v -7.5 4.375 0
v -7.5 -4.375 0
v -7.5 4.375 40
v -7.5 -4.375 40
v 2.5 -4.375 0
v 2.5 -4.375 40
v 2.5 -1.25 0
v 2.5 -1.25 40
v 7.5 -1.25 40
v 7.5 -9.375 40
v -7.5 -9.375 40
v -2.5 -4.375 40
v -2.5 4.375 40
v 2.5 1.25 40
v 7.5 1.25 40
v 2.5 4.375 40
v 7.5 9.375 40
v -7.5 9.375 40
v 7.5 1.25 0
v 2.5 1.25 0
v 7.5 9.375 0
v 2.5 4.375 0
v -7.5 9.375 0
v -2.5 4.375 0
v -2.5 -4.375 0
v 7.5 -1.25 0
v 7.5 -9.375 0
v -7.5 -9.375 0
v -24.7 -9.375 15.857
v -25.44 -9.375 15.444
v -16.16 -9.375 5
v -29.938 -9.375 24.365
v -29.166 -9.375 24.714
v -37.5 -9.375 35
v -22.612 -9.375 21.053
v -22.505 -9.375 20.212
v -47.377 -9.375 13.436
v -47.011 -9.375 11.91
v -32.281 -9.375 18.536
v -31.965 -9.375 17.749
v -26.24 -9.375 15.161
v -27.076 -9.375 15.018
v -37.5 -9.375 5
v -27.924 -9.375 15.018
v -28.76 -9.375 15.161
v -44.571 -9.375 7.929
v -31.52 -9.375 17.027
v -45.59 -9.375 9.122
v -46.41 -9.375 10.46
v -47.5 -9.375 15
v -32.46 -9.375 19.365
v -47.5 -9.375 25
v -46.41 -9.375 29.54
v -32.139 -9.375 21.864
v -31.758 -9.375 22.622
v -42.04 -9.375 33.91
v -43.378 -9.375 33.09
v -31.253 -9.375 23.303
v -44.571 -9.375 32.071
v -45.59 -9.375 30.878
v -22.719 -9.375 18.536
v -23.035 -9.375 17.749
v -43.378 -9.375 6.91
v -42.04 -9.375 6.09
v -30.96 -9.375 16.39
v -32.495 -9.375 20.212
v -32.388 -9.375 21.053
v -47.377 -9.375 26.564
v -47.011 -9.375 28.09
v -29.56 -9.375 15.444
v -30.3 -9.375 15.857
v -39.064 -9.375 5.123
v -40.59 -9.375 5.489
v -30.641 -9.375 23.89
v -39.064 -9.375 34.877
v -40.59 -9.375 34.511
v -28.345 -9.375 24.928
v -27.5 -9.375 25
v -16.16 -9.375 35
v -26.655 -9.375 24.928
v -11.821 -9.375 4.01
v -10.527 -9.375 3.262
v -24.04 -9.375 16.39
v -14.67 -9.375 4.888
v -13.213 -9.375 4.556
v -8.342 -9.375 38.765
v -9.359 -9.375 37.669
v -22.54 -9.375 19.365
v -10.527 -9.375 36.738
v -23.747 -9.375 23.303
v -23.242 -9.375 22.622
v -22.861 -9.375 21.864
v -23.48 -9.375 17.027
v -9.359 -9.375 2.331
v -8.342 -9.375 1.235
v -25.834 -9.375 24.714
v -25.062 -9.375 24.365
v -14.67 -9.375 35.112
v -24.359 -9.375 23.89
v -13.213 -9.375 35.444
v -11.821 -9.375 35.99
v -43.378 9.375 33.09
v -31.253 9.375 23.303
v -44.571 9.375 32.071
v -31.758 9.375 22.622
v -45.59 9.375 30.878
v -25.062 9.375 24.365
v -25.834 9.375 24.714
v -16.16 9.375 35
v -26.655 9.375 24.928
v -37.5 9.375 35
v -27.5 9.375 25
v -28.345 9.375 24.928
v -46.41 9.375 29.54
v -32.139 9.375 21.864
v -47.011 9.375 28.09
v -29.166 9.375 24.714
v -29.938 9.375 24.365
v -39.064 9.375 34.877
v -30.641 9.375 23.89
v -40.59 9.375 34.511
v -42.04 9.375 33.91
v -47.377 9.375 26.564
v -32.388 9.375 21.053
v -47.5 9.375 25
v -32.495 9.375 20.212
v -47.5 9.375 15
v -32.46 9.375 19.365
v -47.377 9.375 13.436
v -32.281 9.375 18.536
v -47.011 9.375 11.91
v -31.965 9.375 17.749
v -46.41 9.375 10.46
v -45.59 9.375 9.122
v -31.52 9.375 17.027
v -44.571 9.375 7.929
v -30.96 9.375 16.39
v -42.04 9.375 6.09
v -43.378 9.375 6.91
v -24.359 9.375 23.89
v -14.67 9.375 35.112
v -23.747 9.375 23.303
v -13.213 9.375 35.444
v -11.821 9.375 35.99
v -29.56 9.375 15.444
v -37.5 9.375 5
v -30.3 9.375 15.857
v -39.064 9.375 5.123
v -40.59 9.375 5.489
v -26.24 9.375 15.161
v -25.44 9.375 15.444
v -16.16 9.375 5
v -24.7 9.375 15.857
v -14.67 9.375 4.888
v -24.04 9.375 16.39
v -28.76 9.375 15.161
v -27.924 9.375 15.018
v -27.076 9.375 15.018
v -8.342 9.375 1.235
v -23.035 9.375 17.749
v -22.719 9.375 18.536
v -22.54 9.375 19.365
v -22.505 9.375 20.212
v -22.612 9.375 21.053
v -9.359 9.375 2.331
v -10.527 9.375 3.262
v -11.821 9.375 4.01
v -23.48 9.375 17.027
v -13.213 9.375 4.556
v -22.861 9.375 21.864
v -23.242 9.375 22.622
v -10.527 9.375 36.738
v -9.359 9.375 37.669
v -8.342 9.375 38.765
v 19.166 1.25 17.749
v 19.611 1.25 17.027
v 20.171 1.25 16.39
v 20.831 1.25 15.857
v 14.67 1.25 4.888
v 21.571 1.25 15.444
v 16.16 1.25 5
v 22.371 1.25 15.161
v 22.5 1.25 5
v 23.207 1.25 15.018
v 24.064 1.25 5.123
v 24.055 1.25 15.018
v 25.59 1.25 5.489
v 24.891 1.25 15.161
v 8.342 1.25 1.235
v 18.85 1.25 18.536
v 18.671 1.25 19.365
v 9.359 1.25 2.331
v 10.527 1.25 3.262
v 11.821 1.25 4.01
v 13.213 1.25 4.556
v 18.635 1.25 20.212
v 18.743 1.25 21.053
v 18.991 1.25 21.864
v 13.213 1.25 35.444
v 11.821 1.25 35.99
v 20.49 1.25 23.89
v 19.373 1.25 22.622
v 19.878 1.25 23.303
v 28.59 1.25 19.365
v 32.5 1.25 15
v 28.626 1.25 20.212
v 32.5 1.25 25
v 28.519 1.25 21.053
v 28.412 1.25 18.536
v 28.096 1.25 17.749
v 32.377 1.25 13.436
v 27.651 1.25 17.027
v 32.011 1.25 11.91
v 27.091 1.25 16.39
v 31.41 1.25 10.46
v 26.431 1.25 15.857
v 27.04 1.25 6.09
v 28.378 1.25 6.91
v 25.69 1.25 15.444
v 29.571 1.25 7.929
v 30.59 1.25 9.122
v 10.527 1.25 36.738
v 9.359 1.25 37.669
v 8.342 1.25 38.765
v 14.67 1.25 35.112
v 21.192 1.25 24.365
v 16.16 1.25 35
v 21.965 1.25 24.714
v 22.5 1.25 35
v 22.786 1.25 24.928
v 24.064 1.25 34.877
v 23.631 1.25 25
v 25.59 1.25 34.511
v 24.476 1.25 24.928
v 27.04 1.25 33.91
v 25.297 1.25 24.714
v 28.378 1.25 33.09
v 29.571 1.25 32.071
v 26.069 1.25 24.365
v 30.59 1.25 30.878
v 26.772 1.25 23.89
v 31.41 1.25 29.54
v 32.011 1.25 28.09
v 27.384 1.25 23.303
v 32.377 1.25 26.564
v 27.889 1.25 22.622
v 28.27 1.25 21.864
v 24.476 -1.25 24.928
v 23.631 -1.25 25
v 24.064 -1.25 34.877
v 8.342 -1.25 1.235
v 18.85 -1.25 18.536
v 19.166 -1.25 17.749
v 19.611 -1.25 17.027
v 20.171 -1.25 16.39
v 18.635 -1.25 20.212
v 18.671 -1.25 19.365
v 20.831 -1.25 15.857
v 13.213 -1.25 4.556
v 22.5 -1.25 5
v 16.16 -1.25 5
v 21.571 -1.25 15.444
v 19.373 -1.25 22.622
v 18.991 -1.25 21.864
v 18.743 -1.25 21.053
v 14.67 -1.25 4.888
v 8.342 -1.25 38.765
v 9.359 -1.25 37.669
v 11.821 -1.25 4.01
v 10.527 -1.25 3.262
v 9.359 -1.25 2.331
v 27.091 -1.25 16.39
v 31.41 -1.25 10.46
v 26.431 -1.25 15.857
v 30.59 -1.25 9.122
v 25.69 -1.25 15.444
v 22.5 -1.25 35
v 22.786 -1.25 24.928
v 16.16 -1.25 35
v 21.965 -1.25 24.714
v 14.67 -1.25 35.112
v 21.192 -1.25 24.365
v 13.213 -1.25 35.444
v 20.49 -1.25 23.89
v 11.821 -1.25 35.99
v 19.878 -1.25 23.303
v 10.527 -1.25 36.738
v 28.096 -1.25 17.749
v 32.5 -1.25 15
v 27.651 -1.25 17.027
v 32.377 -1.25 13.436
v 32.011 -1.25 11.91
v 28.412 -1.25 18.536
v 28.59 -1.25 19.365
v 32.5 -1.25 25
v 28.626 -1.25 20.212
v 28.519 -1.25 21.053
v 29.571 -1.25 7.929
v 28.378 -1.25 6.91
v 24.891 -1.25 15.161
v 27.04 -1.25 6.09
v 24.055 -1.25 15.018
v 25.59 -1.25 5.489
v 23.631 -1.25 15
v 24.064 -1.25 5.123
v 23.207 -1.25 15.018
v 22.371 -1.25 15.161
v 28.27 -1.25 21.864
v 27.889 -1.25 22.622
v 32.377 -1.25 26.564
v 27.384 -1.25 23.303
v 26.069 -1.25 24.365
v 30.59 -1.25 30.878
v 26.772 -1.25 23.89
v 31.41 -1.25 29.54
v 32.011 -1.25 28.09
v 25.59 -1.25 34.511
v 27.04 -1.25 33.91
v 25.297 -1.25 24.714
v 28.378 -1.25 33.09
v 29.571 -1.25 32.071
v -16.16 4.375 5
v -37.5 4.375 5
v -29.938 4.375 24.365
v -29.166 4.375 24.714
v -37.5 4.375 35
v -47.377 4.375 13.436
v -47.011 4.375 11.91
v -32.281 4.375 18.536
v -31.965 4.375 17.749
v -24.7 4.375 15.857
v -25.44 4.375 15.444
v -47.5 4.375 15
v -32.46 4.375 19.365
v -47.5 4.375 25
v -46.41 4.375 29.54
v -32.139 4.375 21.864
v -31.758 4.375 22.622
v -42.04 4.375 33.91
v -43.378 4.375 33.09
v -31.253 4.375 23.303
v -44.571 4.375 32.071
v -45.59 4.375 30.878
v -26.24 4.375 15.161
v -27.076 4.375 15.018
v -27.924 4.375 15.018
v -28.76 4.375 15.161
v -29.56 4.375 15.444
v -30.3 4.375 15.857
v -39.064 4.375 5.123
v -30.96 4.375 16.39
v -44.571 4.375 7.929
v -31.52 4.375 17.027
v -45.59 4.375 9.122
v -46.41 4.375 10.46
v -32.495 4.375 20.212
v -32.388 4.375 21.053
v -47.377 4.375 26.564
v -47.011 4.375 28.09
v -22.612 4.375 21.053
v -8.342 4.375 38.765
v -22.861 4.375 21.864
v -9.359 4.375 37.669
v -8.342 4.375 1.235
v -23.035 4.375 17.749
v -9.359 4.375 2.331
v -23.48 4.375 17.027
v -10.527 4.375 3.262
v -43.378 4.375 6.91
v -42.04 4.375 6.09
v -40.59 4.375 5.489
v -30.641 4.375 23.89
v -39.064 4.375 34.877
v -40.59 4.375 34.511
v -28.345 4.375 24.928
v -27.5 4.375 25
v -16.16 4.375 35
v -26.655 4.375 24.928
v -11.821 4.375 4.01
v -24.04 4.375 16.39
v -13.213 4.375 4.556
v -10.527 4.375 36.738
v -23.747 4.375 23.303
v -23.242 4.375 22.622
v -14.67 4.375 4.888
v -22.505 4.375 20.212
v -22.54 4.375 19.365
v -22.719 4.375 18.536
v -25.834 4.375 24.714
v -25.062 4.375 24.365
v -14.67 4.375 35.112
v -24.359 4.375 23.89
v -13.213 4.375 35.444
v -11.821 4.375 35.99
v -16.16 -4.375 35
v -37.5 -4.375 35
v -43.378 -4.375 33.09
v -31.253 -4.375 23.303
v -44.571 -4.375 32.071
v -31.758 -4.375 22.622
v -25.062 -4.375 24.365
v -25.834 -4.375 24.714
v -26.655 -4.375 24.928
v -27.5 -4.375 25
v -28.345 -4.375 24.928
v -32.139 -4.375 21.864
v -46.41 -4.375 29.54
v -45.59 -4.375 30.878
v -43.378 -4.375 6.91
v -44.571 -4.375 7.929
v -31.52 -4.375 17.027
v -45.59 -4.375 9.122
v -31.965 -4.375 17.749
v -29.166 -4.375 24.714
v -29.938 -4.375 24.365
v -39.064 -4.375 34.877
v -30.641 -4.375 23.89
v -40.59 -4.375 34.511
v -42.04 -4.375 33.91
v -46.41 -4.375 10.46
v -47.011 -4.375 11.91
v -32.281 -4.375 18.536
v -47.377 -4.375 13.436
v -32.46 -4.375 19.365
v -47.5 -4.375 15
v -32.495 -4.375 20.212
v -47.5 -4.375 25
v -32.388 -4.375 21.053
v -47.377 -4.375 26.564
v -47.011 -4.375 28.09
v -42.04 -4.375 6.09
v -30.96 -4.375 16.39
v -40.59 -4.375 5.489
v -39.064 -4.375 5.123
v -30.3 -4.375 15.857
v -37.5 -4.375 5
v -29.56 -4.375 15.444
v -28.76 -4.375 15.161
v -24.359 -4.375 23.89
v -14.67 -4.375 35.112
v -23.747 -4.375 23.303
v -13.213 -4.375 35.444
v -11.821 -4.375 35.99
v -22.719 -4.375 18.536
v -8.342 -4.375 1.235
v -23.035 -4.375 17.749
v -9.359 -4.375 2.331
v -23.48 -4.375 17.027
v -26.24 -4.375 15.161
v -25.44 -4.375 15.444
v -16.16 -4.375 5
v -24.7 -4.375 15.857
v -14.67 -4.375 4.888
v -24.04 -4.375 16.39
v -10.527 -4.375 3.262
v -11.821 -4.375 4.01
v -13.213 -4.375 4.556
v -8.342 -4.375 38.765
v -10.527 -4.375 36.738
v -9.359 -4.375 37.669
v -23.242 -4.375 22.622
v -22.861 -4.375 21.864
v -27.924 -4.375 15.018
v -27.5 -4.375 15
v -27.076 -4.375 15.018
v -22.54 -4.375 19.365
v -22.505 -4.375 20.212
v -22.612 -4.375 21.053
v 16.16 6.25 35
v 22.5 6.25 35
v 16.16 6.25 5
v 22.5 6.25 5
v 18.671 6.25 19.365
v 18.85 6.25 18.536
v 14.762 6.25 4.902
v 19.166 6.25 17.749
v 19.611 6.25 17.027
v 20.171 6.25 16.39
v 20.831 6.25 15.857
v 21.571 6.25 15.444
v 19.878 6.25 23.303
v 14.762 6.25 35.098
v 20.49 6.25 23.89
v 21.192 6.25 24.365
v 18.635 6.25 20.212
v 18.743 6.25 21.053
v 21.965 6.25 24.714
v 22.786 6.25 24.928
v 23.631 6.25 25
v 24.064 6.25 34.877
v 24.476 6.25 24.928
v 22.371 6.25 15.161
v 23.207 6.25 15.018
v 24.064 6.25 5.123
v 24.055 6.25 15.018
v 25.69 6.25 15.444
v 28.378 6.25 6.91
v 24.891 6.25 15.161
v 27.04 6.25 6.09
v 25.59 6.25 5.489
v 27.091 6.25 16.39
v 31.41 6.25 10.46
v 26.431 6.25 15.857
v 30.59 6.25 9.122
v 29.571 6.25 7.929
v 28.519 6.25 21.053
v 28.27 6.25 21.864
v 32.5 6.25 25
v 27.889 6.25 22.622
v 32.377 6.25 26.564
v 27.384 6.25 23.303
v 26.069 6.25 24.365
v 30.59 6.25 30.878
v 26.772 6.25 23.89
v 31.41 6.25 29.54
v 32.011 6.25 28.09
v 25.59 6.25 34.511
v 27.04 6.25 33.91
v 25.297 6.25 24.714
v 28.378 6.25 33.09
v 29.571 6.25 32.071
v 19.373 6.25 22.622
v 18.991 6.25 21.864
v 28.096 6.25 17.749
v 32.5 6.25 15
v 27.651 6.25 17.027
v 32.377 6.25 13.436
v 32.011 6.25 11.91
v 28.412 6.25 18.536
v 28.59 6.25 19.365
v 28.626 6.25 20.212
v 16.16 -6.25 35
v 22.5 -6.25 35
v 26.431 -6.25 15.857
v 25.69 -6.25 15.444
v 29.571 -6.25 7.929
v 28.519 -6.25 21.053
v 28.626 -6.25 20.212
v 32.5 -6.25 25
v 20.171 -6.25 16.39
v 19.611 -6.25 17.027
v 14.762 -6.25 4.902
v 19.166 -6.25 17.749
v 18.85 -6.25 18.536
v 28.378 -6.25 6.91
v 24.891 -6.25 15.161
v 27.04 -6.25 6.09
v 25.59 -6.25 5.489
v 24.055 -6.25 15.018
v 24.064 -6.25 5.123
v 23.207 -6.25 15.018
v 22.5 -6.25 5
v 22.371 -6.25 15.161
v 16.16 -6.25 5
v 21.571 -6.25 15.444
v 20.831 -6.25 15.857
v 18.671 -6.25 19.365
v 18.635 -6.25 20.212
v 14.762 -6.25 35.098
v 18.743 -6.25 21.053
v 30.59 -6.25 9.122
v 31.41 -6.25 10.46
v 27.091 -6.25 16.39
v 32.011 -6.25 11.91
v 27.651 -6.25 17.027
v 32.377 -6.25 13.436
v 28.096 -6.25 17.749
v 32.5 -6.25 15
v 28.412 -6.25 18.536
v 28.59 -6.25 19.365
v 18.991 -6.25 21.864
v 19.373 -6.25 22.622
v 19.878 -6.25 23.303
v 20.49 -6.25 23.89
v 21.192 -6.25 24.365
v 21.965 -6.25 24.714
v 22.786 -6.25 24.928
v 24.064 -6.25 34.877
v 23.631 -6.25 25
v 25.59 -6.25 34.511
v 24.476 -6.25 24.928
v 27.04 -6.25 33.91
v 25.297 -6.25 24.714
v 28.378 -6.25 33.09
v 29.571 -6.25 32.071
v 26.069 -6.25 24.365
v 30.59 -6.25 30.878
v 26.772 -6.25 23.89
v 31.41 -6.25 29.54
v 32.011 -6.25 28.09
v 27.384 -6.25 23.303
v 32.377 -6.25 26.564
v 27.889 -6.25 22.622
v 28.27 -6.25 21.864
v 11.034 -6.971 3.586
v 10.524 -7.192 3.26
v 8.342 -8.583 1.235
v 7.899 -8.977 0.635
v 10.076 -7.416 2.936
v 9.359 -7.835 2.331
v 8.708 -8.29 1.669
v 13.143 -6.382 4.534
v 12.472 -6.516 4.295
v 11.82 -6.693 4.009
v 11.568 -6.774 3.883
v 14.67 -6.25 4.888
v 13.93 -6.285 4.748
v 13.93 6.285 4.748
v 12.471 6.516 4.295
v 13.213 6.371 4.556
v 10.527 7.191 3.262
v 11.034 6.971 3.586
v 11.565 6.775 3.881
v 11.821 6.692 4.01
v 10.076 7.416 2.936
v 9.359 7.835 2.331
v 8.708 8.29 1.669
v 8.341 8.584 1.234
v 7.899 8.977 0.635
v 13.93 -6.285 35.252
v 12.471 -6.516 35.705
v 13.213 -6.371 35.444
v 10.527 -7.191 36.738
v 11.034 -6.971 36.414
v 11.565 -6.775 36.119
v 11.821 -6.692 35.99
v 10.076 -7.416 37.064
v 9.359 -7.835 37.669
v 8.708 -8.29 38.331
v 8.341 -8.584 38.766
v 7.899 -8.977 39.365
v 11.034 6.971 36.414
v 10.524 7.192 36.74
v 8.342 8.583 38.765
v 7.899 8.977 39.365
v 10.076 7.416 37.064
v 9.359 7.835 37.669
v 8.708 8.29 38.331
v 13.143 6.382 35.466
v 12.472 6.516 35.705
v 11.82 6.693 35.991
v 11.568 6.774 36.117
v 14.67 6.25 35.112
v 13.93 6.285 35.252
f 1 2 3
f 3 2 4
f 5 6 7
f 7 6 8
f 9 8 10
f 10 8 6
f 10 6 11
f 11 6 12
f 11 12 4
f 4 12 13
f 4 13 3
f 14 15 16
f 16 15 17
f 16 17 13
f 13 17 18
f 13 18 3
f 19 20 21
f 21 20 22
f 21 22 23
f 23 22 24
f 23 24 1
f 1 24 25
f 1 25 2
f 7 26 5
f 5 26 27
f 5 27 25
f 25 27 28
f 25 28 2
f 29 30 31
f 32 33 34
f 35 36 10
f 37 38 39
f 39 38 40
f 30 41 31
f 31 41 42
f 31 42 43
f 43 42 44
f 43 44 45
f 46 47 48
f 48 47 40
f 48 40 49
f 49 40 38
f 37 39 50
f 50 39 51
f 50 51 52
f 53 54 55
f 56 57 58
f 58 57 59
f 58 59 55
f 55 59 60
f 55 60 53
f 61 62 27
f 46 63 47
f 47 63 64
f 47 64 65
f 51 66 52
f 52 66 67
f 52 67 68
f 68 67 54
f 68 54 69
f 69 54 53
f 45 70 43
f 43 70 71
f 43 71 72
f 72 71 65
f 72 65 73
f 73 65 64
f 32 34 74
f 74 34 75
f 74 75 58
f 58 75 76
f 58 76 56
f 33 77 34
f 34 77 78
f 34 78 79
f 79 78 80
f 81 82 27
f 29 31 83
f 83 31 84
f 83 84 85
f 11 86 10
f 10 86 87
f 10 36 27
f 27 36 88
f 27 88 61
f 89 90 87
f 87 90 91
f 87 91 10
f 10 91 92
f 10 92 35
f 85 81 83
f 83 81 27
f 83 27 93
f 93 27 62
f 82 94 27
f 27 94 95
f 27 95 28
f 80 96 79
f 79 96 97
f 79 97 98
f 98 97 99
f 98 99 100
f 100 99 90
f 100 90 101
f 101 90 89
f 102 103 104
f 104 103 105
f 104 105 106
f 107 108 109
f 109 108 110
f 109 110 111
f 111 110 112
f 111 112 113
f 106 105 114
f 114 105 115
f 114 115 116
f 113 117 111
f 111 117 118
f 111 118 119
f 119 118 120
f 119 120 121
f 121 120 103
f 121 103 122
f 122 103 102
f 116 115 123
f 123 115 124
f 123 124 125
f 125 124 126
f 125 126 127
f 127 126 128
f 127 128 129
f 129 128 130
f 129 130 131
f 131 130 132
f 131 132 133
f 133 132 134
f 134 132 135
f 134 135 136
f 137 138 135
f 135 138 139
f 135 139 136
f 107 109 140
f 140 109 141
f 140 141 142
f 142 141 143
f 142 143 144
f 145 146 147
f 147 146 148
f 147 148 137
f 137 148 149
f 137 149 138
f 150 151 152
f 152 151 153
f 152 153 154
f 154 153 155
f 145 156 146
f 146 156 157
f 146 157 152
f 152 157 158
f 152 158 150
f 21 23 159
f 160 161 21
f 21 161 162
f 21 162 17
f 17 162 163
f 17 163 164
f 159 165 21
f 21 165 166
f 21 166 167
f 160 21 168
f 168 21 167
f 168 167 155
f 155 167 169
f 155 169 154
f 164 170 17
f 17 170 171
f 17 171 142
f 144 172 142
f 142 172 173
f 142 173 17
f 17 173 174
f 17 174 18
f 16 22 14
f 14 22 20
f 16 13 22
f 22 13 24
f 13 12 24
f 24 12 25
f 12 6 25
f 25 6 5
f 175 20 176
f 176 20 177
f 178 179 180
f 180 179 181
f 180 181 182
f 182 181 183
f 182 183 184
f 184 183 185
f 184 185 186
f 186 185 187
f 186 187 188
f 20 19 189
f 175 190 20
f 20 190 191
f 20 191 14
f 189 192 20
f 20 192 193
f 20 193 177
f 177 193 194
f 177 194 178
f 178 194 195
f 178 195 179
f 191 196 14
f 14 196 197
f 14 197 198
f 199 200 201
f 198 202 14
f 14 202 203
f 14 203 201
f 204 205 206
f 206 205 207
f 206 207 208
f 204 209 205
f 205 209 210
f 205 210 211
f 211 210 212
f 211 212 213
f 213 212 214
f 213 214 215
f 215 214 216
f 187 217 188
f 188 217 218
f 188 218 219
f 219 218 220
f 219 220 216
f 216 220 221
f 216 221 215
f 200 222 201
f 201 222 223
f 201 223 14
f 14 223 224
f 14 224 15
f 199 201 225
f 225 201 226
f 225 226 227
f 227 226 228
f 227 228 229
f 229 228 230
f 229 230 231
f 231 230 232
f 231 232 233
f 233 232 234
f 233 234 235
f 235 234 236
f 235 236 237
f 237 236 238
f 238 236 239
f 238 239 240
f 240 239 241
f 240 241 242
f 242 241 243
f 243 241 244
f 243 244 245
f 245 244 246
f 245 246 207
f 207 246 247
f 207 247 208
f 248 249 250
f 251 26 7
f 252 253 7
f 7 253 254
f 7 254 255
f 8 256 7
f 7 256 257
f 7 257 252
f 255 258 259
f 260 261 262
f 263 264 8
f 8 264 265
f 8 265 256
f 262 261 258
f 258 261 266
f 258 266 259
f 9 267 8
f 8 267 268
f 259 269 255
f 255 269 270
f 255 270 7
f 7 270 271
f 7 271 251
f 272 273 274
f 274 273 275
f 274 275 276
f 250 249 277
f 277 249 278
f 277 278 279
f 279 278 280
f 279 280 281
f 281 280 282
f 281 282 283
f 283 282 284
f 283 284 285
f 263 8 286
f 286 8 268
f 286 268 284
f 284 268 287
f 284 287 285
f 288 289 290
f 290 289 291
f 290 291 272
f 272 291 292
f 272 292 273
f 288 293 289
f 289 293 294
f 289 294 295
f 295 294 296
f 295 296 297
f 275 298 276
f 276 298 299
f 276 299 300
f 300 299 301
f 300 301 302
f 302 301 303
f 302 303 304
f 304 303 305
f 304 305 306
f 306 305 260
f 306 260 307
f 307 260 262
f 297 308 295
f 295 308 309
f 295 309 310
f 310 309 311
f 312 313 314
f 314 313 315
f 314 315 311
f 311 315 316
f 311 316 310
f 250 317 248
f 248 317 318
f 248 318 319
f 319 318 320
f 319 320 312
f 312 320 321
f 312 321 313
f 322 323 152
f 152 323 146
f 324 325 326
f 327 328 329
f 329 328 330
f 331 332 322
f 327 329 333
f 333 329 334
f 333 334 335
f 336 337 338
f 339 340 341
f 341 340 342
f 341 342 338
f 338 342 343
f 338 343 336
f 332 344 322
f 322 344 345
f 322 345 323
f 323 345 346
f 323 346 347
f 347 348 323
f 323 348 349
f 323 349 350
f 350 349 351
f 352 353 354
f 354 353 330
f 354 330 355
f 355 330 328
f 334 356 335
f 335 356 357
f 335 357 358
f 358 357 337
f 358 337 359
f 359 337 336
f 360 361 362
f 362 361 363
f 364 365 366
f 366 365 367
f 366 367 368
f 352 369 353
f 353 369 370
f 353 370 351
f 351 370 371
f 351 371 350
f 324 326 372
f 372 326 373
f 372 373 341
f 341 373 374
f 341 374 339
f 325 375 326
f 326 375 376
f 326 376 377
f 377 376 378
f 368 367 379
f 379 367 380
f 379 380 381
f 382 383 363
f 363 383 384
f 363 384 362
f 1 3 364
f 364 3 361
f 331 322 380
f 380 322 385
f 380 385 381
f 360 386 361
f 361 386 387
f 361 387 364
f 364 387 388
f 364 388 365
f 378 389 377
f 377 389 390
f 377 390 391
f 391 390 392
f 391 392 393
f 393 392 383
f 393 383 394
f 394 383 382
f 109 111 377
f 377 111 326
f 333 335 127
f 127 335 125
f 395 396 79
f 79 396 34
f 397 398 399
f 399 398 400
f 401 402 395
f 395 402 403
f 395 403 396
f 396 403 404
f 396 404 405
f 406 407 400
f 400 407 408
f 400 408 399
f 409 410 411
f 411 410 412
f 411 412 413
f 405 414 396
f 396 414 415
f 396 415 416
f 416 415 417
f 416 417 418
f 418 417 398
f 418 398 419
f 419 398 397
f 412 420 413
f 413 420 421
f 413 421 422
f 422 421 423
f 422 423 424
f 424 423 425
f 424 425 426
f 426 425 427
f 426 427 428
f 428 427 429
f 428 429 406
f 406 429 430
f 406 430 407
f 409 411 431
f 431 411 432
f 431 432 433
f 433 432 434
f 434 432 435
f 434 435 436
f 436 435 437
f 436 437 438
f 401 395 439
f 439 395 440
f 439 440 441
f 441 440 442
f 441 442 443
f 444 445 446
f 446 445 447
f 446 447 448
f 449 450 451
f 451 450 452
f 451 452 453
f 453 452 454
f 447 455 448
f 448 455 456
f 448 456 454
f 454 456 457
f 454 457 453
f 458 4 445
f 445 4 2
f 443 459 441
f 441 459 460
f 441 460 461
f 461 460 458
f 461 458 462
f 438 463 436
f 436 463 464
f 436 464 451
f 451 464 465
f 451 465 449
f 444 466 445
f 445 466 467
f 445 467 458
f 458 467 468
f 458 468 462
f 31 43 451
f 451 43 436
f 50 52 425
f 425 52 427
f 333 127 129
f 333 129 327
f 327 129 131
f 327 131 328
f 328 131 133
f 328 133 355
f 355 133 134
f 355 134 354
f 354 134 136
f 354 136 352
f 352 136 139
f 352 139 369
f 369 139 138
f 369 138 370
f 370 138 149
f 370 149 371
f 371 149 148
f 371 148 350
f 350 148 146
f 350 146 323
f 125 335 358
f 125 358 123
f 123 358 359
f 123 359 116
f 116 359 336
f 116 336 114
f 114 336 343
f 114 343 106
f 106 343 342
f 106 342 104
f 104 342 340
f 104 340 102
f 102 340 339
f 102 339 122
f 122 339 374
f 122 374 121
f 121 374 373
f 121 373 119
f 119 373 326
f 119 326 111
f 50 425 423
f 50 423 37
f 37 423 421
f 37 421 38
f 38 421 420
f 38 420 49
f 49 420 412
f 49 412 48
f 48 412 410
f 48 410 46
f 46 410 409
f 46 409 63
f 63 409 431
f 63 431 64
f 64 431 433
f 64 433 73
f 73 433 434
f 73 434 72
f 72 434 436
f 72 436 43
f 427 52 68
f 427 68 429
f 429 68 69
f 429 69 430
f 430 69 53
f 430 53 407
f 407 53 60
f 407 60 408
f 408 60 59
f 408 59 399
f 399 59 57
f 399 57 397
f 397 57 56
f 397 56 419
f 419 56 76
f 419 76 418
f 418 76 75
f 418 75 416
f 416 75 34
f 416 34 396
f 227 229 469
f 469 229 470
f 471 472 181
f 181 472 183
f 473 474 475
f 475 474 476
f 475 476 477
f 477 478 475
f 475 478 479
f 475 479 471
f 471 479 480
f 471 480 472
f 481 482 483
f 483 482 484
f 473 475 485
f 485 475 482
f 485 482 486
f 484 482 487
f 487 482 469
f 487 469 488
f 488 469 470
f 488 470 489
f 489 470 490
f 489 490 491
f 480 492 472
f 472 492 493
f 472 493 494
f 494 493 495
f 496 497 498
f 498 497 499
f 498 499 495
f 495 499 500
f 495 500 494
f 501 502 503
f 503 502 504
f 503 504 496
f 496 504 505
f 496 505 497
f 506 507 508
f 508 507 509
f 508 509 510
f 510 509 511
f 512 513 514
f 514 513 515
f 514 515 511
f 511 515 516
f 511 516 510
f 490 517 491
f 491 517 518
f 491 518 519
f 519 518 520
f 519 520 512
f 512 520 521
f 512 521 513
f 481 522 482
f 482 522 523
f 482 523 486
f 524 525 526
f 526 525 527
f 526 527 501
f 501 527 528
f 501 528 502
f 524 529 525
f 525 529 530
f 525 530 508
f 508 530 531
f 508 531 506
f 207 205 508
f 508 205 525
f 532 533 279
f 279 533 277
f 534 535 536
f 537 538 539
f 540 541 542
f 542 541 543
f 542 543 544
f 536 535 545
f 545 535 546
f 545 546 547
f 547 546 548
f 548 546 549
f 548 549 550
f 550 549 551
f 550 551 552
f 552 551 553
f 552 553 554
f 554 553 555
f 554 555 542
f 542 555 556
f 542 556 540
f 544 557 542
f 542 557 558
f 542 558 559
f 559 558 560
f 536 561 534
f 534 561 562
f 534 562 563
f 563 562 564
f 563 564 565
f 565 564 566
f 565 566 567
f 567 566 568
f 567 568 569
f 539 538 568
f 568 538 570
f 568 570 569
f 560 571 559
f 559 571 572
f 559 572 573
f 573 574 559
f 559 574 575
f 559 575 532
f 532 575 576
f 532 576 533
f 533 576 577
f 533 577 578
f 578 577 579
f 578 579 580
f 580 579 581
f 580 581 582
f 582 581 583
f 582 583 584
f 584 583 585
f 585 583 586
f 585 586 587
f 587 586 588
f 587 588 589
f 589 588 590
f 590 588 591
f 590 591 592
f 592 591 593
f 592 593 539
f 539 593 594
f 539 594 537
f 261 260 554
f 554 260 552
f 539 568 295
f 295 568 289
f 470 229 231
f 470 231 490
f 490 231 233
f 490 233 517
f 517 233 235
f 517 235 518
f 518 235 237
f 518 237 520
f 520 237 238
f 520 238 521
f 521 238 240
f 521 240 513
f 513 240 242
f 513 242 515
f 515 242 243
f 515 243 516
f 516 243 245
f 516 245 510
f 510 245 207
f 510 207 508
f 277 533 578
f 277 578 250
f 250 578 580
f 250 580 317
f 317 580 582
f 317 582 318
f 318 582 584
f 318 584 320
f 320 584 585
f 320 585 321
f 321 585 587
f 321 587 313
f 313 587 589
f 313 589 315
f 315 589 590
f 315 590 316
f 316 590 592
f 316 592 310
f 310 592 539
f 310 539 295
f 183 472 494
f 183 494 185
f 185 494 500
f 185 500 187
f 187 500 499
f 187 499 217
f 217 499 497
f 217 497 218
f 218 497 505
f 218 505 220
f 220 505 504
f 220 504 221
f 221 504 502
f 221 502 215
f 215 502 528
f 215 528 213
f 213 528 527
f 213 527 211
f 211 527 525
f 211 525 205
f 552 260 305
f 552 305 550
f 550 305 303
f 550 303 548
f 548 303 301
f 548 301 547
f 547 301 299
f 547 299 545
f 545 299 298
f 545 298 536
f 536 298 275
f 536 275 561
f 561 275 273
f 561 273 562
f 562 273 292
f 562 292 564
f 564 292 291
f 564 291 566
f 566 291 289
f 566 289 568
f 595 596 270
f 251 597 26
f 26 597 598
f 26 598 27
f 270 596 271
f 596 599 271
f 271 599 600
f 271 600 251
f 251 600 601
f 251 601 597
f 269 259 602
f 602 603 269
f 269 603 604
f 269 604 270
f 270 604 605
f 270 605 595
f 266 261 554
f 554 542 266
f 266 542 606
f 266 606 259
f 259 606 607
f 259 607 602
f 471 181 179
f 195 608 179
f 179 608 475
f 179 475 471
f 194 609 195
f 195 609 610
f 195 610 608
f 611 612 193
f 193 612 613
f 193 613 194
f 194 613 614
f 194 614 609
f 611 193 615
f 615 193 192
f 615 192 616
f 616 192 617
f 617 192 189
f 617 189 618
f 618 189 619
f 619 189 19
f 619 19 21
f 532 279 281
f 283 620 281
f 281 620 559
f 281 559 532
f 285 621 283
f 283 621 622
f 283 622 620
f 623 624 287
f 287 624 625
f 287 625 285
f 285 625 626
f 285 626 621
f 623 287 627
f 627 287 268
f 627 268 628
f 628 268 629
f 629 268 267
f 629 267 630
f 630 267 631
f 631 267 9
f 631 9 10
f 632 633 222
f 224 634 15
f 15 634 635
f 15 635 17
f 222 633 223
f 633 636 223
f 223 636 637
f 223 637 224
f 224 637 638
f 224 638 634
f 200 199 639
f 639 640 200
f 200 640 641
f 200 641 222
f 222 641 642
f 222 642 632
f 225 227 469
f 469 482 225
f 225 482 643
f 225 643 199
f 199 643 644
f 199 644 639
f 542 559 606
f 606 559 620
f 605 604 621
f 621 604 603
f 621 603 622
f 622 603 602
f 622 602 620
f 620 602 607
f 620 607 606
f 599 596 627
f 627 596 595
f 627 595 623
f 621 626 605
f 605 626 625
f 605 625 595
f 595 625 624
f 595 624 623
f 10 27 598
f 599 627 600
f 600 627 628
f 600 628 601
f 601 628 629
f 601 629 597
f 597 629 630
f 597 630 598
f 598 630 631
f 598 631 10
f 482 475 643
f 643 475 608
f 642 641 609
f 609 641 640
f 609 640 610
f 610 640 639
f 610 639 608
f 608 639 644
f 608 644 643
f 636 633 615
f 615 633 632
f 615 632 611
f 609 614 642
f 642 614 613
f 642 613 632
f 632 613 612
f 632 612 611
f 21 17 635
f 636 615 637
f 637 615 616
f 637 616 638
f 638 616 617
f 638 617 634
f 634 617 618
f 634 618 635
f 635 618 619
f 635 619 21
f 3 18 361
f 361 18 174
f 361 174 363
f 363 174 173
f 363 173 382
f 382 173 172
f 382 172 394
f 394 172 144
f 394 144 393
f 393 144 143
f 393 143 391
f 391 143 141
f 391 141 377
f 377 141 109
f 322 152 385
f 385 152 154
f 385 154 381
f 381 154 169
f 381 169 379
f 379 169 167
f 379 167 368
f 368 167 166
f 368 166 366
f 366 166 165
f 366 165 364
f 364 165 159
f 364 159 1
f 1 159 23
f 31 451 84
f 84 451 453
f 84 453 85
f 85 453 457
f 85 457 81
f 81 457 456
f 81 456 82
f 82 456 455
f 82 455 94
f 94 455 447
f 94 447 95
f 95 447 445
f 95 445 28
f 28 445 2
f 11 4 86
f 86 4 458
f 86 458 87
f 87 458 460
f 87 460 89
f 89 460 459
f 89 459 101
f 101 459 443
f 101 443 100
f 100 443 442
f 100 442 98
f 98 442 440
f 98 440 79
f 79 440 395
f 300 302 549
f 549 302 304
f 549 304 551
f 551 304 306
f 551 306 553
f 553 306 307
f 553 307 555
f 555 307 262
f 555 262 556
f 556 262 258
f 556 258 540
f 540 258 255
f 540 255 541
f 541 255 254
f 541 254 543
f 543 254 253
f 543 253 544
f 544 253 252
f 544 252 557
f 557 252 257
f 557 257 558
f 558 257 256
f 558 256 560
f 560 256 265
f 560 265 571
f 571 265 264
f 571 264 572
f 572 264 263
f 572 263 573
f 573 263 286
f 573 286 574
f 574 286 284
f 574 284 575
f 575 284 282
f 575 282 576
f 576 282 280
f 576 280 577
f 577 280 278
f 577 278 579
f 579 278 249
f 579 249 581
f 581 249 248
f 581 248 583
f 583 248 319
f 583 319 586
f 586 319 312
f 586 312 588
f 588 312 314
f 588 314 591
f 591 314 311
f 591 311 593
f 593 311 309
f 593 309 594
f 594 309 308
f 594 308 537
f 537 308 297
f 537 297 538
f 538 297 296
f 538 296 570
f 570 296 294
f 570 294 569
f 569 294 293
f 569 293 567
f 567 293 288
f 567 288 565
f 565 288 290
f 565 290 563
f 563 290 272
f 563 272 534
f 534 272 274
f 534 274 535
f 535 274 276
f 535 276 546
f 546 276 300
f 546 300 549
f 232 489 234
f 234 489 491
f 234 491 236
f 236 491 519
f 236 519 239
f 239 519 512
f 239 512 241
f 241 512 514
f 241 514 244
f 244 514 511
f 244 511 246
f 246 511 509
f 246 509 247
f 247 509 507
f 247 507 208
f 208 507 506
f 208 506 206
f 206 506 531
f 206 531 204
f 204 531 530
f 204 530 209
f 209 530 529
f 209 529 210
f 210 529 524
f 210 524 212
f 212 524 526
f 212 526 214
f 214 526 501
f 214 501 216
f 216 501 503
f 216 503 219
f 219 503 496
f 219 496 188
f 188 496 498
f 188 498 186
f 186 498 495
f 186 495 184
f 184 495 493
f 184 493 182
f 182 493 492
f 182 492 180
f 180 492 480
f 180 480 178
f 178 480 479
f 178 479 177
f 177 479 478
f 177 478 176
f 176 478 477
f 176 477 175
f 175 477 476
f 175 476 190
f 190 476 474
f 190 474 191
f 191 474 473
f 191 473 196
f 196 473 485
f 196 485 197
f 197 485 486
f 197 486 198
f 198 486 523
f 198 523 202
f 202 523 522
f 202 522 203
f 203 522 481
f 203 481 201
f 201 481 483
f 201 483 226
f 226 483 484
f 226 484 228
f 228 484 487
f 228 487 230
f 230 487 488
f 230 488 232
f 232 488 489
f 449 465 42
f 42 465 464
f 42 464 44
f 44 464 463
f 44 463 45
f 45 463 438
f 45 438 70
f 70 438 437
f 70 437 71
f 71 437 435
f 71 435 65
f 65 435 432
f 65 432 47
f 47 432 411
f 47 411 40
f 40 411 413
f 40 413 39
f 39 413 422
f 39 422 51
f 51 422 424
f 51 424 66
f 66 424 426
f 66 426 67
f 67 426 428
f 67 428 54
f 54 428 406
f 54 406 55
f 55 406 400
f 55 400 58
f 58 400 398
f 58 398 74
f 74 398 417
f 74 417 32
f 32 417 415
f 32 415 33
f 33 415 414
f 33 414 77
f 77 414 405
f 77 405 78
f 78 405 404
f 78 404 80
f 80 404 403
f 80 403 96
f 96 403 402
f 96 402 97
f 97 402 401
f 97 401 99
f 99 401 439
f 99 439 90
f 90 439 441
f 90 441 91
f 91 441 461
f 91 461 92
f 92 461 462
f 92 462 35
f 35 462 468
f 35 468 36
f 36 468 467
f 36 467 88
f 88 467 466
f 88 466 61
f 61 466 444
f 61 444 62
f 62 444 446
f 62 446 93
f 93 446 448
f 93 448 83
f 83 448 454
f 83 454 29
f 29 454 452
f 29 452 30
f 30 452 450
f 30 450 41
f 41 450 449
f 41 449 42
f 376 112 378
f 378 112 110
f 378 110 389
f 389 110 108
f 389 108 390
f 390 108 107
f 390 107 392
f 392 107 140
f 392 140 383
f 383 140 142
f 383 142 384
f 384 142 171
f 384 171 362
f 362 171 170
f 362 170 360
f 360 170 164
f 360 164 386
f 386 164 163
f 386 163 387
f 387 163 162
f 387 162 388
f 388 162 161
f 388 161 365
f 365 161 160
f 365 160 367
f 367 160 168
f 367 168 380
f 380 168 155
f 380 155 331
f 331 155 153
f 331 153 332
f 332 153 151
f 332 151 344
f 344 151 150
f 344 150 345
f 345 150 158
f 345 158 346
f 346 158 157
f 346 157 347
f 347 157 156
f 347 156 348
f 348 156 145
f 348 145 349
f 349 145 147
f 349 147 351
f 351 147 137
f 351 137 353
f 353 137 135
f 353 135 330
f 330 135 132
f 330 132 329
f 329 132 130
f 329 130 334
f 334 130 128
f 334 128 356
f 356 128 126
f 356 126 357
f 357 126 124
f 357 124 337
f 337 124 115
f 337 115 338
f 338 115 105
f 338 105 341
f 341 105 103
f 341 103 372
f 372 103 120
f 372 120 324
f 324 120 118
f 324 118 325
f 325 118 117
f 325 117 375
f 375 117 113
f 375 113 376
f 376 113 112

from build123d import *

# Parameters (mm, degrees)
SCHIZZO1_W                    = 15
SCHIZZO1_H                    = 18.75
SCHIZZO1_W_2                  = 5
SCHIZZO1_H_2                  = 8.75
ESTRUSIONE_ESTRUSIONE1_DEPTH  = 40
TAGLIO_ESTRUSIONE1_DEPTH      = 42.762909681
TAGLIO_ESTRUSIONE1_DEPTH_BACK = 42.762909681
SCHIZZO2_W                    = 5
SCHIZZO2_H                    = 2.5
SCHIZZO4_W                    = 30
SCHIZZO4_H                    = 5
ESTRUSIONE_ESTRUSIONE2_DEPTH  = 40
RACCORDO1_R                   = 10
SCHIZZO5_W                    = 30
SCHIZZO5_H                    = 5
ESTRUSIONE_ESTRUSIONE3_DEPTH  = 25
RACCORDO2_R                   = 10
RACCORDO3_R                   = 10
RACCORDO4_R                   = 10
RACCORDO5_R                   = 10
TAGLIO_ESTRUSIONE2_DEPTH      = 65.034292657
TAGLIO_ESTRUSIONE2_DEPTH_BACK = 65.034292657
SCHIZZO6_R                    = 5
TAGLIO_ESTRUSIONE3_DEPTH      = 65.867653817
TAGLIO_ESTRUSIONE3_DEPTH_BACK = 65.867653817
SCHIZZO7_R                    = 5


with BuildPart() as part:
    # Schizzo1 → Estrusione-Estrusione1 (new body)
    with BuildSketch(Plane.XY):
        Rectangle(SCHIZZO1_W, SCHIZZO1_H)
        Rectangle(SCHIZZO1_W_2, SCHIZZO1_H_2, mode=Mode.SUBTRACT)
    extrude(amount=ESTRUSIONE_ESTRUSIONE1_DEPTH)

    # Schizzo2 → Taglio-Estrusione1 (cut, two sides: drawn at the far end of the back side and taken through both)
    with BuildSketch(Plane.XY.offset(40).offset(-TAGLIO_ESTRUSIONE1_DEPTH_BACK)):
        with Locations((5, 0)):
            Rectangle(SCHIZZO2_W, SCHIZZO2_H)
    extrude(amount=TAGLIO_ESTRUSIONE1_DEPTH + TAGLIO_ESTRUSIONE1_DEPTH_BACK, mode=Mode.SUBTRACT)

    # Schizzo4 → Estrusione-Estrusione2 (add)
    with BuildSketch(Plane.ZY.offset(7.5)):
        with Locations((20, 6.875)):
            Rectangle(SCHIZZO4_W, SCHIZZO4_H)
        with Locations((20, -6.875)):
            Rectangle(SCHIZZO4_W, SCHIZZO4_H)
    extrude(amount=ESTRUSIONE_ESTRUSIONE2_DEPTH)

    # Raccordo1
    raccordo1_edges = [part.edges().sort_by_distance(p)[0] for p in [
        (-47.5, 6.875, 5),
        (-47.5, 6.875, 35),
        (-47.5, -6.875, 35),
        (-47.5, -6.875, 5),
    ]]
    fillet(raccordo1_edges, radius=RACCORDO1_R)

    # Schizzo5 → Estrusione-Estrusione3 (add)
    with BuildSketch(Plane(origin=(7.5, 0, 0), x_dir=(0, 0, -1), z_dir=(1, 0, 0))):
        with Locations((-20, 3.75)):
            Rectangle(SCHIZZO5_W, SCHIZZO5_H)
        with Locations((-20, -3.75)):
            Rectangle(SCHIZZO5_W, SCHIZZO5_H)
    extrude(amount=ESTRUSIONE_ESTRUSIONE3_DEPTH)

    # Raccordo2
    raccordo2_edges = [part.edges().sort_by_distance(p)[0] for p in [
        (32.5, 3.75, 35),
        (32.5, 3.75, 5),
        (32.5, -3.75, 35),
        (32.5, -3.75, 5),
    ]]
    fillet(raccordo2_edges, radius=RACCORDO2_R)

    # Raccordo3
    # the kernel refuses this fillet: 10 mm, written as the material it adds along each edge
    with BuildSketch(Plane(origin=(7.5, -6.25, 5), x_dir=(0, 0, -1), z_dir=(0, 1, 0)), Plane(origin=(7.5, 1.25, 5), x_dir=(0, 0, -1), z_dir=(0, 1, 0)), Plane(origin=(7.5, 6.25, 35), x_dir=(0, 0, 1), z_dir=(0, -1, 0))) as raccordo3_piece_1:
        with BuildLine():
            CenterArc((10, -8.660254038), RACCORDO3_R, 120, 60)
            Line((0, -8.660254038), (-0.2, -8.660254038))
            Line((-0.2, -8.660254038), (-0.2, 0))
            Line((-0.2, 0), (0, 0.2))
            ThreePointArc((0, 0.2), (2.5, 0.2), (4.9, 0.173205081))
            Line((4.9, 0.173205081), (5, 0))
        make_face()
    extrude(amount=5)
    with BuildSketch(Plane(origin=(7.5, -6.25, 5), x_dir=(0, 0, -1), z_dir=(0, 1, 0))) as raccordo3_piece_2_section:
        with BuildLine():
            CenterArc((10, -8.660254038), RACCORDO3_R, 120, 60)
            Line((0, -8.660254038), (-0.2, -8.660254038))
            Line((-0.2, -8.660254038), (-0.2, 0))
            Line((-0.2, 0), (0, 0.2))
            ThreePointArc((0, 0.2), (2.5, 0.2), (4.9, 0.173205081))
            Line((4.9, 0.173205081), (5, 0))
        make_face()
    raccordo3_piece_2 = extrude(amount=26.650635095, mode=Mode.PRIVATE)
    raccordo3_piece_2 = split(raccordo3_piece_2, bisect_by=Plane(origin=(9.663104458, 1.25, 3.704832889), z_dir=(0, 1, 0)), keep=Keep.TOP, mode=Mode.PRIVATE)
    raccordo3_piece_2 = split(raccordo3_piece_2, bisect_by=Plane(origin=(9.663104458, 6.25, 3.704832889), z_dir=(0, -1, 0)), keep=Keep.TOP, mode=Mode.PRIVATE)
    add(raccordo3_piece_2)
    with BuildSketch(Plane(origin=(7.5, -20.400635095, 5), x_dir=(0, 0, -1), z_dir=(0, 1, 0))) as raccordo3_piece_3_section:
        with BuildLine():
            CenterArc((10, -8.660254038), RACCORDO3_R, 120, 60)
            Line((0, -8.660254038), (-0.2, -8.660254038))
            Line((-0.2, -8.660254038), (-0.2, 0))
            Line((-0.2, 0), (0, 0.2))
            ThreePointArc((0, 0.2), (2.5, 0.2), (4.9, 0.173205081))
            Line((4.9, 0.173205081), (5, 0))
        make_face()
    raccordo3_piece_3 = extrude(amount=26.650635095, mode=Mode.PRIVATE)
    raccordo3_piece_3 = split(raccordo3_piece_3, bisect_by=Plane(origin=(9.663104458, -1.25, 3.704832889), z_dir=(0, -1, 0)), keep=Keep.TOP, mode=Mode.PRIVATE)
    raccordo3_piece_3 = split(raccordo3_piece_3, bisect_by=Plane(origin=(9.663104458, -6.25, 3.704832889), z_dir=(0, 1, 0)), keep=Keep.TOP, mode=Mode.PRIVATE)
    add(raccordo3_piece_3)
    with BuildSketch(Plane(origin=(7.5, 20.400635095, 35), x_dir=(1, 0, 0), z_dir=(0, -1, 0))) as raccordo3_piece_4_section:
        with BuildLine():
            CenterArc((8.660254038, 10), RACCORDO3_R, 210, 60)
            Line((0, 5), (-0.173205081, 4.9))
            ThreePointArc((-0.173205081, 4.9), (-0.2, 2.5), (-0.2, 0))
            Line((-0.2, 0), (0, -0.2))
            Line((0, -0.2), (8.660254038, -0.2))
            Line((8.660254038, -0.2), (8.660254038, 0))
        make_face()
    raccordo3_piece_4 = extrude(amount=26.650635095, mode=Mode.PRIVATE)
    raccordo3_piece_4 = split(raccordo3_piece_4, bisect_by=Plane(origin=(9.663104458, 1.25, 36.295167111), z_dir=(0, 1, 0)), keep=Keep.TOP, mode=Mode.PRIVATE)
    raccordo3_piece_4 = split(raccordo3_piece_4, bisect_by=Plane(origin=(9.663104458, 6.25, 36.295167111), z_dir=(0, -1, 0)), keep=Keep.TOP, mode=Mode.PRIVATE)
    add(raccordo3_piece_4)
    with BuildSketch(Plane(origin=(7.5, -1.25, 35), x_dir=(1, 0, 0), z_dir=(0, -1, 0))) as raccordo3_piece_5:
        with BuildLine():
            CenterArc((8.660254038, 10), RACCORDO3_R, 210, 60)
            Line((0, 5), (-0.173205081, 4.9))
            ThreePointArc((-0.173205081, 4.9), (-0.2, 2.5), (-0.2, 0))
            Line((-0.2, 0), (0, -0.2))
            Line((0, -0.2), (8.660254038, -0.2))
            Line((8.660254038, -0.2), (8.660254038, 0))
        make_face()
    extrude(amount=5)
    with BuildSketch(Plane(origin=(7.5, 6.25, 35), x_dir=(0, 0, 1), z_dir=(0, -1, 0))) as raccordo3_piece_6_section:
        with BuildLine():
            CenterArc((10, -8.660254038), RACCORDO3_R, 120, 60)
            Line((0, -8.660254038), (-0.2, -8.660254038))
            Line((-0.2, -8.660254038), (-0.2, 0))
            Line((-0.2, 0), (0, 0.2))
            ThreePointArc((0, 0.2), (2.5, 0.2), (4.9, 0.173205081))
            Line((4.9, 0.173205081), (5, 0))
        make_face()
    raccordo3_piece_6 = extrude(amount=26.650635095, mode=Mode.PRIVATE)
    raccordo3_piece_6 = split(raccordo3_piece_6, bisect_by=Plane(origin=(9.663104458, -1.25, 36.295167111), z_dir=(0, -1, 0)), keep=Keep.TOP, mode=Mode.PRIVATE)
    raccordo3_piece_6 = split(raccordo3_piece_6, bisect_by=Plane(origin=(9.663104458, -6.25, 36.295167111), z_dir=(0, 1, 0)), keep=Keep.TOP, mode=Mode.PRIVATE)
    add(raccordo3_piece_6)

    # Raccordo4
    # the kernel refuses this fillet: 10 mm, written as the material it adds along each edge
    with BuildSketch(Plane(origin=(7.5, 6.25, 0), x_dir=(1, 0, 0), z_dir=(0, 0, 1))) as raccordo4_piece_1_section:
        with BuildLine():
            CenterArc((7.261843774, 10), RACCORDO4_R, 223.432536558, 46.567463442)
            Line((0, 3.125), (-0.145236875, 2.9875))
            ThreePointArc((-0.145236875, 2.9875), (-0.2, 1.5625), (-0.2, 0))
            Line((-0.2, 0), (0, -0.2))
            Line((0, -0.2), (7.261843774, -0.2))
            Line((7.261843774, -0.2), (7.261843774, 0))
        make_face()
    raccordo4_piece_1 = extrude(amount=40, mode=Mode.PRIVATE)
    raccordo4_piece_1 = raccordo4_piece_1 - Plane(origin=(16.160254038, 7.063958932, -5), x_dir=(0, 0, -1), z_dir=(0, -1, 0)) * Cylinder(10, 110, mode=Mode.PRIVATE)
    raccordo4_piece_1 = raccordo4_piece_1 - Plane(origin=(16.160254038, 7.063958932, 45), x_dir=(0, 0, 1), z_dir=(0, 1, 0)) * Cylinder(10, 110, mode=Mode.PRIVATE)
    add(raccordo4_piece_1)
    with BuildSketch(Plane(origin=(7.5, -6.25, 40), x_dir=(1, 0, 0), z_dir=(0, 0, -1))) as raccordo4_piece_2_section:
        with BuildLine():
            CenterArc((7.261843774, 10), RACCORDO4_R, 223.432536558, 46.567463442)
            Line((0, 3.125), (-0.145236875, 2.9875))
            ThreePointArc((-0.145236875, 2.9875), (-0.2, 1.5625), (-0.2, 0))
            Line((-0.2, 0), (0, -0.2))
            Line((0, -0.2), (7.261843774, -0.2))
            Line((7.261843774, -0.2), (7.261843774, 0))
        make_face()
    raccordo4_piece_2 = extrude(amount=40, mode=Mode.PRIVATE)
    raccordo4_piece_2 = raccordo4_piece_2 - Plane(origin=(16.160254038, -7.063958932, 45), x_dir=(1, 0, 0), z_dir=(0, 1, 0)) * Cylinder(10, 110, mode=Mode.PRIVATE)
    raccordo4_piece_2 = raccordo4_piece_2 - Plane(origin=(16.160254038, -7.063958932, -5), x_dir=(0, 0, -1), z_dir=(0, -1, 0)) * Cylinder(10, 110, mode=Mode.PRIVATE)
    add(raccordo4_piece_2)

    # Raccordo5
    # the kernel refuses this fillet: 10 mm, written as the material it adds along each edge
    with BuildSketch(Plane(origin=(-7.5, 9.375, 35), x_dir=(-1, 0, 0), z_dir=(0, -1, 0))) as raccordo5_piece_1:
        with BuildLine():
            CenterArc((8.660254038, -10), RACCORDO5_R, 90, 60)
            Line((0, -5), (-0.173205081, -4.9))
            ThreePointArc((-0.173205081, -4.9), (-0.2, -2.5), (-0.2, 0))
            Line((-0.2, 0), (0, 0.2))
            Line((0, 0.2), (8.660254038, 0.2))
            Line((8.660254038, 0.2), (8.660254038, 0))
        make_face()
    extrude(amount=5)
    with BuildSketch(Plane(origin=(-7.5, 9.375, 35), x_dir=(-1, 0, 0), z_dir=(0, -1, 0))) as raccordo5_piece_2_section:
        with BuildLine():
            CenterArc((8.660254038, -10), RACCORDO5_R, 90, 60)
            Line((0, -5), (-0.173205081, -4.9))
            ThreePointArc((-0.173205081, -4.9), (-0.2, -2.5), (-0.2, 0))
            Line((-0.2, 0), (0, 0.2))
            Line((0, 0.2), (8.660254038, 0.2))
            Line((8.660254038, 0.2), (8.660254038, 0))
        make_face()
    raccordo5_piece_2 = extrude(amount=26.650635095, mode=Mode.PRIVATE)
    raccordo5_piece_2 = split(raccordo5_piece_2, bisect_by=Plane(origin=(-9.663104458, -9.375, 36.295167111), z_dir=(0, 1, 0)), keep=Keep.TOP, mode=Mode.PRIVATE)
    raccordo5_piece_2 = split(raccordo5_piece_2, bisect_by=Plane(origin=(-9.663104458, -4.375, 36.295167111), z_dir=(0, -1, 0)), keep=Keep.TOP, mode=Mode.PRIVATE)
    add(raccordo5_piece_2)
    with BuildSketch(Plane(origin=(-7.5, -17.275635095, 5), x_dir=(0, 0, -1), z_dir=(0, 1, 0))) as raccordo5_piece_3_section:
        with BuildLine():
            CenterArc((10, 8.660254038), RACCORDO5_R, 180, 60)
            Line((0, 8.660254038), (-0.2, 8.660254038))
            Line((-0.2, 8.660254038), (-0.2, 0))
            Line((-0.2, 0), (0, -0.2))
            ThreePointArc((0, -0.2), (2.5, -0.2), (4.9, -0.173205081))
            Line((4.9, -0.173205081), (5, 0))
        make_face()
    raccordo5_piece_3 = extrude(amount=26.650635095, mode=Mode.PRIVATE)
    raccordo5_piece_3 = split(raccordo5_piece_3, bisect_by=Plane(origin=(-9.663104458, -9.375, 3.704832889), z_dir=(0, 1, 0)), keep=Keep.TOP, mode=Mode.PRIVATE)
    raccordo5_piece_3 = split(raccordo5_piece_3, bisect_by=Plane(origin=(-9.663104458, -4.375, 3.704832889), z_dir=(0, -1, 0)), keep=Keep.TOP, mode=Mode.PRIVATE)
    add(raccordo5_piece_3)
    with BuildSketch(Plane(origin=(-7.5, 4.375, 5), x_dir=(0, 0, -1), z_dir=(0, 1, 0))) as raccordo5_piece_4:
        with BuildLine():
            CenterArc((10, 8.660254038), RACCORDO5_R, 180, 60)
            Line((0, 8.660254038), (-0.2, 8.660254038))
            Line((-0.2, 8.660254038), (-0.2, 0))
            Line((-0.2, 0), (0, -0.2))
            ThreePointArc((0, -0.2), (2.5, -0.2), (4.9, -0.173205081))
            Line((4.9, -0.173205081), (5, 0))
        make_face()
    extrude(amount=5)
    with BuildSketch(Plane(origin=(-7.5, 17.275635095, 5), x_dir=(0, 0, -1), z_dir=(0, -1, 0))) as raccordo5_piece_5_section:
        with BuildLine():
            CenterArc((10, -8.660254038), RACCORDO5_R, 120, 60)
            Line((0, -8.660254038), (-0.2, -8.660254038))
            Line((-0.2, -8.660254038), (-0.2, 0))
            Line((-0.2, 0), (0, 0.2))
            ThreePointArc((0, 0.2), (2.5, 0.2), (4.9, 0.173205081))
            Line((4.9, 0.173205081), (5, 0))
        make_face()
    raccordo5_piece_5 = extrude(amount=26.650635095, mode=Mode.PRIVATE)
    raccordo5_piece_5 = split(raccordo5_piece_5, bisect_by=Plane(origin=(-9.663104458, 9.375, 3.704832889), z_dir=(0, -1, 0)), keep=Keep.TOP, mode=Mode.PRIVATE)
    raccordo5_piece_5 = split(raccordo5_piece_5, bisect_by=Plane(origin=(-9.663104458, 4.375, 3.704832889), z_dir=(0, 1, 0)), keep=Keep.TOP, mode=Mode.PRIVATE)
    add(raccordo5_piece_5)
    with BuildSketch(Plane(origin=(-7.5, -4.375, 5), x_dir=(0, 0, -1), z_dir=(0, -1, 0)), Plane(origin=(-7.5, -9.375, 35), x_dir=(0, 0, 1), z_dir=(0, 1, 0))) as raccordo5_piece_6:
        with BuildLine():
            CenterArc((10, -8.660254038), RACCORDO5_R, 120, 60)
            Line((0, -8.660254038), (-0.2, -8.660254038))
            Line((-0.2, -8.660254038), (-0.2, 0))
            Line((-0.2, 0), (0, 0.2))
            ThreePointArc((0, 0.2), (2.5, 0.2), (4.9, 0.173205081))
            Line((4.9, 0.173205081), (5, 0))
        make_face()
    extrude(amount=5)
    with BuildSketch(Plane(origin=(-7.5, -9.375, 35), x_dir=(0, 0, 1), z_dir=(0, 1, 0))) as raccordo5_piece_7_section:
        with BuildLine():
            CenterArc((10, -8.660254038), RACCORDO5_R, 120, 60)
            Line((0, -8.660254038), (-0.2, -8.660254038))
            Line((-0.2, -8.660254038), (-0.2, 0))
            Line((-0.2, 0), (0, 0.2))
            ThreePointArc((0, 0.2), (2.5, 0.2), (4.9, 0.173205081))
            Line((4.9, 0.173205081), (5, 0))
        make_face()
    raccordo5_piece_7 = extrude(amount=26.650635095, mode=Mode.PRIVATE)
    raccordo5_piece_7 = split(raccordo5_piece_7, bisect_by=Plane(origin=(-9.663104458, 9.375, 36.295167111), z_dir=(0, -1, 0)), keep=Keep.TOP, mode=Mode.PRIVATE)
    raccordo5_piece_7 = split(raccordo5_piece_7, bisect_by=Plane(origin=(-9.663104458, 4.375, 36.295167111), z_dir=(0, 1, 0)), keep=Keep.TOP, mode=Mode.PRIVATE)
    add(raccordo5_piece_7)

    # Schizzo6 → Taglio-Estrusione2 (cut, two sides: drawn at the far end of the back side and taken through both)
    with BuildSketch(Plane(origin=(0, 6.25, 0), x_dir=(1, 0, 0), z_dir=(0, 1, 0)).offset(-TAGLIO_ESTRUSIONE2_DEPTH_BACK)):
        with Locations(Location((23.630921887, -20, 0), (0, 0, 270))):
            Circle(SCHIZZO6_R)
    extrude(amount=TAGLIO_ESTRUSIONE2_DEPTH + TAGLIO_ESTRUSIONE2_DEPTH_BACK, mode=Mode.SUBTRACT)

    # Schizzo7 → Taglio-Estrusione3 (cut, two sides: drawn at the far end of the back side and taken through both)
    with BuildSketch(Plane(origin=(0, 9.375, 0), x_dir=(1, 0, 0), z_dir=(0, 1, 0)).offset(-TAGLIO_ESTRUSIONE3_DEPTH_BACK)):
        with Locations(Location((-27.5, -20, 0), (0, 0, 270))):
            Circle(SCHIZZO7_R)
    extrude(amount=TAGLIO_ESTRUSIONE3_DEPTH + TAGLIO_ESTRUSIONE3_DEPTH_BACK, mode=Mode.SUBTRACT)


solid = part.part
